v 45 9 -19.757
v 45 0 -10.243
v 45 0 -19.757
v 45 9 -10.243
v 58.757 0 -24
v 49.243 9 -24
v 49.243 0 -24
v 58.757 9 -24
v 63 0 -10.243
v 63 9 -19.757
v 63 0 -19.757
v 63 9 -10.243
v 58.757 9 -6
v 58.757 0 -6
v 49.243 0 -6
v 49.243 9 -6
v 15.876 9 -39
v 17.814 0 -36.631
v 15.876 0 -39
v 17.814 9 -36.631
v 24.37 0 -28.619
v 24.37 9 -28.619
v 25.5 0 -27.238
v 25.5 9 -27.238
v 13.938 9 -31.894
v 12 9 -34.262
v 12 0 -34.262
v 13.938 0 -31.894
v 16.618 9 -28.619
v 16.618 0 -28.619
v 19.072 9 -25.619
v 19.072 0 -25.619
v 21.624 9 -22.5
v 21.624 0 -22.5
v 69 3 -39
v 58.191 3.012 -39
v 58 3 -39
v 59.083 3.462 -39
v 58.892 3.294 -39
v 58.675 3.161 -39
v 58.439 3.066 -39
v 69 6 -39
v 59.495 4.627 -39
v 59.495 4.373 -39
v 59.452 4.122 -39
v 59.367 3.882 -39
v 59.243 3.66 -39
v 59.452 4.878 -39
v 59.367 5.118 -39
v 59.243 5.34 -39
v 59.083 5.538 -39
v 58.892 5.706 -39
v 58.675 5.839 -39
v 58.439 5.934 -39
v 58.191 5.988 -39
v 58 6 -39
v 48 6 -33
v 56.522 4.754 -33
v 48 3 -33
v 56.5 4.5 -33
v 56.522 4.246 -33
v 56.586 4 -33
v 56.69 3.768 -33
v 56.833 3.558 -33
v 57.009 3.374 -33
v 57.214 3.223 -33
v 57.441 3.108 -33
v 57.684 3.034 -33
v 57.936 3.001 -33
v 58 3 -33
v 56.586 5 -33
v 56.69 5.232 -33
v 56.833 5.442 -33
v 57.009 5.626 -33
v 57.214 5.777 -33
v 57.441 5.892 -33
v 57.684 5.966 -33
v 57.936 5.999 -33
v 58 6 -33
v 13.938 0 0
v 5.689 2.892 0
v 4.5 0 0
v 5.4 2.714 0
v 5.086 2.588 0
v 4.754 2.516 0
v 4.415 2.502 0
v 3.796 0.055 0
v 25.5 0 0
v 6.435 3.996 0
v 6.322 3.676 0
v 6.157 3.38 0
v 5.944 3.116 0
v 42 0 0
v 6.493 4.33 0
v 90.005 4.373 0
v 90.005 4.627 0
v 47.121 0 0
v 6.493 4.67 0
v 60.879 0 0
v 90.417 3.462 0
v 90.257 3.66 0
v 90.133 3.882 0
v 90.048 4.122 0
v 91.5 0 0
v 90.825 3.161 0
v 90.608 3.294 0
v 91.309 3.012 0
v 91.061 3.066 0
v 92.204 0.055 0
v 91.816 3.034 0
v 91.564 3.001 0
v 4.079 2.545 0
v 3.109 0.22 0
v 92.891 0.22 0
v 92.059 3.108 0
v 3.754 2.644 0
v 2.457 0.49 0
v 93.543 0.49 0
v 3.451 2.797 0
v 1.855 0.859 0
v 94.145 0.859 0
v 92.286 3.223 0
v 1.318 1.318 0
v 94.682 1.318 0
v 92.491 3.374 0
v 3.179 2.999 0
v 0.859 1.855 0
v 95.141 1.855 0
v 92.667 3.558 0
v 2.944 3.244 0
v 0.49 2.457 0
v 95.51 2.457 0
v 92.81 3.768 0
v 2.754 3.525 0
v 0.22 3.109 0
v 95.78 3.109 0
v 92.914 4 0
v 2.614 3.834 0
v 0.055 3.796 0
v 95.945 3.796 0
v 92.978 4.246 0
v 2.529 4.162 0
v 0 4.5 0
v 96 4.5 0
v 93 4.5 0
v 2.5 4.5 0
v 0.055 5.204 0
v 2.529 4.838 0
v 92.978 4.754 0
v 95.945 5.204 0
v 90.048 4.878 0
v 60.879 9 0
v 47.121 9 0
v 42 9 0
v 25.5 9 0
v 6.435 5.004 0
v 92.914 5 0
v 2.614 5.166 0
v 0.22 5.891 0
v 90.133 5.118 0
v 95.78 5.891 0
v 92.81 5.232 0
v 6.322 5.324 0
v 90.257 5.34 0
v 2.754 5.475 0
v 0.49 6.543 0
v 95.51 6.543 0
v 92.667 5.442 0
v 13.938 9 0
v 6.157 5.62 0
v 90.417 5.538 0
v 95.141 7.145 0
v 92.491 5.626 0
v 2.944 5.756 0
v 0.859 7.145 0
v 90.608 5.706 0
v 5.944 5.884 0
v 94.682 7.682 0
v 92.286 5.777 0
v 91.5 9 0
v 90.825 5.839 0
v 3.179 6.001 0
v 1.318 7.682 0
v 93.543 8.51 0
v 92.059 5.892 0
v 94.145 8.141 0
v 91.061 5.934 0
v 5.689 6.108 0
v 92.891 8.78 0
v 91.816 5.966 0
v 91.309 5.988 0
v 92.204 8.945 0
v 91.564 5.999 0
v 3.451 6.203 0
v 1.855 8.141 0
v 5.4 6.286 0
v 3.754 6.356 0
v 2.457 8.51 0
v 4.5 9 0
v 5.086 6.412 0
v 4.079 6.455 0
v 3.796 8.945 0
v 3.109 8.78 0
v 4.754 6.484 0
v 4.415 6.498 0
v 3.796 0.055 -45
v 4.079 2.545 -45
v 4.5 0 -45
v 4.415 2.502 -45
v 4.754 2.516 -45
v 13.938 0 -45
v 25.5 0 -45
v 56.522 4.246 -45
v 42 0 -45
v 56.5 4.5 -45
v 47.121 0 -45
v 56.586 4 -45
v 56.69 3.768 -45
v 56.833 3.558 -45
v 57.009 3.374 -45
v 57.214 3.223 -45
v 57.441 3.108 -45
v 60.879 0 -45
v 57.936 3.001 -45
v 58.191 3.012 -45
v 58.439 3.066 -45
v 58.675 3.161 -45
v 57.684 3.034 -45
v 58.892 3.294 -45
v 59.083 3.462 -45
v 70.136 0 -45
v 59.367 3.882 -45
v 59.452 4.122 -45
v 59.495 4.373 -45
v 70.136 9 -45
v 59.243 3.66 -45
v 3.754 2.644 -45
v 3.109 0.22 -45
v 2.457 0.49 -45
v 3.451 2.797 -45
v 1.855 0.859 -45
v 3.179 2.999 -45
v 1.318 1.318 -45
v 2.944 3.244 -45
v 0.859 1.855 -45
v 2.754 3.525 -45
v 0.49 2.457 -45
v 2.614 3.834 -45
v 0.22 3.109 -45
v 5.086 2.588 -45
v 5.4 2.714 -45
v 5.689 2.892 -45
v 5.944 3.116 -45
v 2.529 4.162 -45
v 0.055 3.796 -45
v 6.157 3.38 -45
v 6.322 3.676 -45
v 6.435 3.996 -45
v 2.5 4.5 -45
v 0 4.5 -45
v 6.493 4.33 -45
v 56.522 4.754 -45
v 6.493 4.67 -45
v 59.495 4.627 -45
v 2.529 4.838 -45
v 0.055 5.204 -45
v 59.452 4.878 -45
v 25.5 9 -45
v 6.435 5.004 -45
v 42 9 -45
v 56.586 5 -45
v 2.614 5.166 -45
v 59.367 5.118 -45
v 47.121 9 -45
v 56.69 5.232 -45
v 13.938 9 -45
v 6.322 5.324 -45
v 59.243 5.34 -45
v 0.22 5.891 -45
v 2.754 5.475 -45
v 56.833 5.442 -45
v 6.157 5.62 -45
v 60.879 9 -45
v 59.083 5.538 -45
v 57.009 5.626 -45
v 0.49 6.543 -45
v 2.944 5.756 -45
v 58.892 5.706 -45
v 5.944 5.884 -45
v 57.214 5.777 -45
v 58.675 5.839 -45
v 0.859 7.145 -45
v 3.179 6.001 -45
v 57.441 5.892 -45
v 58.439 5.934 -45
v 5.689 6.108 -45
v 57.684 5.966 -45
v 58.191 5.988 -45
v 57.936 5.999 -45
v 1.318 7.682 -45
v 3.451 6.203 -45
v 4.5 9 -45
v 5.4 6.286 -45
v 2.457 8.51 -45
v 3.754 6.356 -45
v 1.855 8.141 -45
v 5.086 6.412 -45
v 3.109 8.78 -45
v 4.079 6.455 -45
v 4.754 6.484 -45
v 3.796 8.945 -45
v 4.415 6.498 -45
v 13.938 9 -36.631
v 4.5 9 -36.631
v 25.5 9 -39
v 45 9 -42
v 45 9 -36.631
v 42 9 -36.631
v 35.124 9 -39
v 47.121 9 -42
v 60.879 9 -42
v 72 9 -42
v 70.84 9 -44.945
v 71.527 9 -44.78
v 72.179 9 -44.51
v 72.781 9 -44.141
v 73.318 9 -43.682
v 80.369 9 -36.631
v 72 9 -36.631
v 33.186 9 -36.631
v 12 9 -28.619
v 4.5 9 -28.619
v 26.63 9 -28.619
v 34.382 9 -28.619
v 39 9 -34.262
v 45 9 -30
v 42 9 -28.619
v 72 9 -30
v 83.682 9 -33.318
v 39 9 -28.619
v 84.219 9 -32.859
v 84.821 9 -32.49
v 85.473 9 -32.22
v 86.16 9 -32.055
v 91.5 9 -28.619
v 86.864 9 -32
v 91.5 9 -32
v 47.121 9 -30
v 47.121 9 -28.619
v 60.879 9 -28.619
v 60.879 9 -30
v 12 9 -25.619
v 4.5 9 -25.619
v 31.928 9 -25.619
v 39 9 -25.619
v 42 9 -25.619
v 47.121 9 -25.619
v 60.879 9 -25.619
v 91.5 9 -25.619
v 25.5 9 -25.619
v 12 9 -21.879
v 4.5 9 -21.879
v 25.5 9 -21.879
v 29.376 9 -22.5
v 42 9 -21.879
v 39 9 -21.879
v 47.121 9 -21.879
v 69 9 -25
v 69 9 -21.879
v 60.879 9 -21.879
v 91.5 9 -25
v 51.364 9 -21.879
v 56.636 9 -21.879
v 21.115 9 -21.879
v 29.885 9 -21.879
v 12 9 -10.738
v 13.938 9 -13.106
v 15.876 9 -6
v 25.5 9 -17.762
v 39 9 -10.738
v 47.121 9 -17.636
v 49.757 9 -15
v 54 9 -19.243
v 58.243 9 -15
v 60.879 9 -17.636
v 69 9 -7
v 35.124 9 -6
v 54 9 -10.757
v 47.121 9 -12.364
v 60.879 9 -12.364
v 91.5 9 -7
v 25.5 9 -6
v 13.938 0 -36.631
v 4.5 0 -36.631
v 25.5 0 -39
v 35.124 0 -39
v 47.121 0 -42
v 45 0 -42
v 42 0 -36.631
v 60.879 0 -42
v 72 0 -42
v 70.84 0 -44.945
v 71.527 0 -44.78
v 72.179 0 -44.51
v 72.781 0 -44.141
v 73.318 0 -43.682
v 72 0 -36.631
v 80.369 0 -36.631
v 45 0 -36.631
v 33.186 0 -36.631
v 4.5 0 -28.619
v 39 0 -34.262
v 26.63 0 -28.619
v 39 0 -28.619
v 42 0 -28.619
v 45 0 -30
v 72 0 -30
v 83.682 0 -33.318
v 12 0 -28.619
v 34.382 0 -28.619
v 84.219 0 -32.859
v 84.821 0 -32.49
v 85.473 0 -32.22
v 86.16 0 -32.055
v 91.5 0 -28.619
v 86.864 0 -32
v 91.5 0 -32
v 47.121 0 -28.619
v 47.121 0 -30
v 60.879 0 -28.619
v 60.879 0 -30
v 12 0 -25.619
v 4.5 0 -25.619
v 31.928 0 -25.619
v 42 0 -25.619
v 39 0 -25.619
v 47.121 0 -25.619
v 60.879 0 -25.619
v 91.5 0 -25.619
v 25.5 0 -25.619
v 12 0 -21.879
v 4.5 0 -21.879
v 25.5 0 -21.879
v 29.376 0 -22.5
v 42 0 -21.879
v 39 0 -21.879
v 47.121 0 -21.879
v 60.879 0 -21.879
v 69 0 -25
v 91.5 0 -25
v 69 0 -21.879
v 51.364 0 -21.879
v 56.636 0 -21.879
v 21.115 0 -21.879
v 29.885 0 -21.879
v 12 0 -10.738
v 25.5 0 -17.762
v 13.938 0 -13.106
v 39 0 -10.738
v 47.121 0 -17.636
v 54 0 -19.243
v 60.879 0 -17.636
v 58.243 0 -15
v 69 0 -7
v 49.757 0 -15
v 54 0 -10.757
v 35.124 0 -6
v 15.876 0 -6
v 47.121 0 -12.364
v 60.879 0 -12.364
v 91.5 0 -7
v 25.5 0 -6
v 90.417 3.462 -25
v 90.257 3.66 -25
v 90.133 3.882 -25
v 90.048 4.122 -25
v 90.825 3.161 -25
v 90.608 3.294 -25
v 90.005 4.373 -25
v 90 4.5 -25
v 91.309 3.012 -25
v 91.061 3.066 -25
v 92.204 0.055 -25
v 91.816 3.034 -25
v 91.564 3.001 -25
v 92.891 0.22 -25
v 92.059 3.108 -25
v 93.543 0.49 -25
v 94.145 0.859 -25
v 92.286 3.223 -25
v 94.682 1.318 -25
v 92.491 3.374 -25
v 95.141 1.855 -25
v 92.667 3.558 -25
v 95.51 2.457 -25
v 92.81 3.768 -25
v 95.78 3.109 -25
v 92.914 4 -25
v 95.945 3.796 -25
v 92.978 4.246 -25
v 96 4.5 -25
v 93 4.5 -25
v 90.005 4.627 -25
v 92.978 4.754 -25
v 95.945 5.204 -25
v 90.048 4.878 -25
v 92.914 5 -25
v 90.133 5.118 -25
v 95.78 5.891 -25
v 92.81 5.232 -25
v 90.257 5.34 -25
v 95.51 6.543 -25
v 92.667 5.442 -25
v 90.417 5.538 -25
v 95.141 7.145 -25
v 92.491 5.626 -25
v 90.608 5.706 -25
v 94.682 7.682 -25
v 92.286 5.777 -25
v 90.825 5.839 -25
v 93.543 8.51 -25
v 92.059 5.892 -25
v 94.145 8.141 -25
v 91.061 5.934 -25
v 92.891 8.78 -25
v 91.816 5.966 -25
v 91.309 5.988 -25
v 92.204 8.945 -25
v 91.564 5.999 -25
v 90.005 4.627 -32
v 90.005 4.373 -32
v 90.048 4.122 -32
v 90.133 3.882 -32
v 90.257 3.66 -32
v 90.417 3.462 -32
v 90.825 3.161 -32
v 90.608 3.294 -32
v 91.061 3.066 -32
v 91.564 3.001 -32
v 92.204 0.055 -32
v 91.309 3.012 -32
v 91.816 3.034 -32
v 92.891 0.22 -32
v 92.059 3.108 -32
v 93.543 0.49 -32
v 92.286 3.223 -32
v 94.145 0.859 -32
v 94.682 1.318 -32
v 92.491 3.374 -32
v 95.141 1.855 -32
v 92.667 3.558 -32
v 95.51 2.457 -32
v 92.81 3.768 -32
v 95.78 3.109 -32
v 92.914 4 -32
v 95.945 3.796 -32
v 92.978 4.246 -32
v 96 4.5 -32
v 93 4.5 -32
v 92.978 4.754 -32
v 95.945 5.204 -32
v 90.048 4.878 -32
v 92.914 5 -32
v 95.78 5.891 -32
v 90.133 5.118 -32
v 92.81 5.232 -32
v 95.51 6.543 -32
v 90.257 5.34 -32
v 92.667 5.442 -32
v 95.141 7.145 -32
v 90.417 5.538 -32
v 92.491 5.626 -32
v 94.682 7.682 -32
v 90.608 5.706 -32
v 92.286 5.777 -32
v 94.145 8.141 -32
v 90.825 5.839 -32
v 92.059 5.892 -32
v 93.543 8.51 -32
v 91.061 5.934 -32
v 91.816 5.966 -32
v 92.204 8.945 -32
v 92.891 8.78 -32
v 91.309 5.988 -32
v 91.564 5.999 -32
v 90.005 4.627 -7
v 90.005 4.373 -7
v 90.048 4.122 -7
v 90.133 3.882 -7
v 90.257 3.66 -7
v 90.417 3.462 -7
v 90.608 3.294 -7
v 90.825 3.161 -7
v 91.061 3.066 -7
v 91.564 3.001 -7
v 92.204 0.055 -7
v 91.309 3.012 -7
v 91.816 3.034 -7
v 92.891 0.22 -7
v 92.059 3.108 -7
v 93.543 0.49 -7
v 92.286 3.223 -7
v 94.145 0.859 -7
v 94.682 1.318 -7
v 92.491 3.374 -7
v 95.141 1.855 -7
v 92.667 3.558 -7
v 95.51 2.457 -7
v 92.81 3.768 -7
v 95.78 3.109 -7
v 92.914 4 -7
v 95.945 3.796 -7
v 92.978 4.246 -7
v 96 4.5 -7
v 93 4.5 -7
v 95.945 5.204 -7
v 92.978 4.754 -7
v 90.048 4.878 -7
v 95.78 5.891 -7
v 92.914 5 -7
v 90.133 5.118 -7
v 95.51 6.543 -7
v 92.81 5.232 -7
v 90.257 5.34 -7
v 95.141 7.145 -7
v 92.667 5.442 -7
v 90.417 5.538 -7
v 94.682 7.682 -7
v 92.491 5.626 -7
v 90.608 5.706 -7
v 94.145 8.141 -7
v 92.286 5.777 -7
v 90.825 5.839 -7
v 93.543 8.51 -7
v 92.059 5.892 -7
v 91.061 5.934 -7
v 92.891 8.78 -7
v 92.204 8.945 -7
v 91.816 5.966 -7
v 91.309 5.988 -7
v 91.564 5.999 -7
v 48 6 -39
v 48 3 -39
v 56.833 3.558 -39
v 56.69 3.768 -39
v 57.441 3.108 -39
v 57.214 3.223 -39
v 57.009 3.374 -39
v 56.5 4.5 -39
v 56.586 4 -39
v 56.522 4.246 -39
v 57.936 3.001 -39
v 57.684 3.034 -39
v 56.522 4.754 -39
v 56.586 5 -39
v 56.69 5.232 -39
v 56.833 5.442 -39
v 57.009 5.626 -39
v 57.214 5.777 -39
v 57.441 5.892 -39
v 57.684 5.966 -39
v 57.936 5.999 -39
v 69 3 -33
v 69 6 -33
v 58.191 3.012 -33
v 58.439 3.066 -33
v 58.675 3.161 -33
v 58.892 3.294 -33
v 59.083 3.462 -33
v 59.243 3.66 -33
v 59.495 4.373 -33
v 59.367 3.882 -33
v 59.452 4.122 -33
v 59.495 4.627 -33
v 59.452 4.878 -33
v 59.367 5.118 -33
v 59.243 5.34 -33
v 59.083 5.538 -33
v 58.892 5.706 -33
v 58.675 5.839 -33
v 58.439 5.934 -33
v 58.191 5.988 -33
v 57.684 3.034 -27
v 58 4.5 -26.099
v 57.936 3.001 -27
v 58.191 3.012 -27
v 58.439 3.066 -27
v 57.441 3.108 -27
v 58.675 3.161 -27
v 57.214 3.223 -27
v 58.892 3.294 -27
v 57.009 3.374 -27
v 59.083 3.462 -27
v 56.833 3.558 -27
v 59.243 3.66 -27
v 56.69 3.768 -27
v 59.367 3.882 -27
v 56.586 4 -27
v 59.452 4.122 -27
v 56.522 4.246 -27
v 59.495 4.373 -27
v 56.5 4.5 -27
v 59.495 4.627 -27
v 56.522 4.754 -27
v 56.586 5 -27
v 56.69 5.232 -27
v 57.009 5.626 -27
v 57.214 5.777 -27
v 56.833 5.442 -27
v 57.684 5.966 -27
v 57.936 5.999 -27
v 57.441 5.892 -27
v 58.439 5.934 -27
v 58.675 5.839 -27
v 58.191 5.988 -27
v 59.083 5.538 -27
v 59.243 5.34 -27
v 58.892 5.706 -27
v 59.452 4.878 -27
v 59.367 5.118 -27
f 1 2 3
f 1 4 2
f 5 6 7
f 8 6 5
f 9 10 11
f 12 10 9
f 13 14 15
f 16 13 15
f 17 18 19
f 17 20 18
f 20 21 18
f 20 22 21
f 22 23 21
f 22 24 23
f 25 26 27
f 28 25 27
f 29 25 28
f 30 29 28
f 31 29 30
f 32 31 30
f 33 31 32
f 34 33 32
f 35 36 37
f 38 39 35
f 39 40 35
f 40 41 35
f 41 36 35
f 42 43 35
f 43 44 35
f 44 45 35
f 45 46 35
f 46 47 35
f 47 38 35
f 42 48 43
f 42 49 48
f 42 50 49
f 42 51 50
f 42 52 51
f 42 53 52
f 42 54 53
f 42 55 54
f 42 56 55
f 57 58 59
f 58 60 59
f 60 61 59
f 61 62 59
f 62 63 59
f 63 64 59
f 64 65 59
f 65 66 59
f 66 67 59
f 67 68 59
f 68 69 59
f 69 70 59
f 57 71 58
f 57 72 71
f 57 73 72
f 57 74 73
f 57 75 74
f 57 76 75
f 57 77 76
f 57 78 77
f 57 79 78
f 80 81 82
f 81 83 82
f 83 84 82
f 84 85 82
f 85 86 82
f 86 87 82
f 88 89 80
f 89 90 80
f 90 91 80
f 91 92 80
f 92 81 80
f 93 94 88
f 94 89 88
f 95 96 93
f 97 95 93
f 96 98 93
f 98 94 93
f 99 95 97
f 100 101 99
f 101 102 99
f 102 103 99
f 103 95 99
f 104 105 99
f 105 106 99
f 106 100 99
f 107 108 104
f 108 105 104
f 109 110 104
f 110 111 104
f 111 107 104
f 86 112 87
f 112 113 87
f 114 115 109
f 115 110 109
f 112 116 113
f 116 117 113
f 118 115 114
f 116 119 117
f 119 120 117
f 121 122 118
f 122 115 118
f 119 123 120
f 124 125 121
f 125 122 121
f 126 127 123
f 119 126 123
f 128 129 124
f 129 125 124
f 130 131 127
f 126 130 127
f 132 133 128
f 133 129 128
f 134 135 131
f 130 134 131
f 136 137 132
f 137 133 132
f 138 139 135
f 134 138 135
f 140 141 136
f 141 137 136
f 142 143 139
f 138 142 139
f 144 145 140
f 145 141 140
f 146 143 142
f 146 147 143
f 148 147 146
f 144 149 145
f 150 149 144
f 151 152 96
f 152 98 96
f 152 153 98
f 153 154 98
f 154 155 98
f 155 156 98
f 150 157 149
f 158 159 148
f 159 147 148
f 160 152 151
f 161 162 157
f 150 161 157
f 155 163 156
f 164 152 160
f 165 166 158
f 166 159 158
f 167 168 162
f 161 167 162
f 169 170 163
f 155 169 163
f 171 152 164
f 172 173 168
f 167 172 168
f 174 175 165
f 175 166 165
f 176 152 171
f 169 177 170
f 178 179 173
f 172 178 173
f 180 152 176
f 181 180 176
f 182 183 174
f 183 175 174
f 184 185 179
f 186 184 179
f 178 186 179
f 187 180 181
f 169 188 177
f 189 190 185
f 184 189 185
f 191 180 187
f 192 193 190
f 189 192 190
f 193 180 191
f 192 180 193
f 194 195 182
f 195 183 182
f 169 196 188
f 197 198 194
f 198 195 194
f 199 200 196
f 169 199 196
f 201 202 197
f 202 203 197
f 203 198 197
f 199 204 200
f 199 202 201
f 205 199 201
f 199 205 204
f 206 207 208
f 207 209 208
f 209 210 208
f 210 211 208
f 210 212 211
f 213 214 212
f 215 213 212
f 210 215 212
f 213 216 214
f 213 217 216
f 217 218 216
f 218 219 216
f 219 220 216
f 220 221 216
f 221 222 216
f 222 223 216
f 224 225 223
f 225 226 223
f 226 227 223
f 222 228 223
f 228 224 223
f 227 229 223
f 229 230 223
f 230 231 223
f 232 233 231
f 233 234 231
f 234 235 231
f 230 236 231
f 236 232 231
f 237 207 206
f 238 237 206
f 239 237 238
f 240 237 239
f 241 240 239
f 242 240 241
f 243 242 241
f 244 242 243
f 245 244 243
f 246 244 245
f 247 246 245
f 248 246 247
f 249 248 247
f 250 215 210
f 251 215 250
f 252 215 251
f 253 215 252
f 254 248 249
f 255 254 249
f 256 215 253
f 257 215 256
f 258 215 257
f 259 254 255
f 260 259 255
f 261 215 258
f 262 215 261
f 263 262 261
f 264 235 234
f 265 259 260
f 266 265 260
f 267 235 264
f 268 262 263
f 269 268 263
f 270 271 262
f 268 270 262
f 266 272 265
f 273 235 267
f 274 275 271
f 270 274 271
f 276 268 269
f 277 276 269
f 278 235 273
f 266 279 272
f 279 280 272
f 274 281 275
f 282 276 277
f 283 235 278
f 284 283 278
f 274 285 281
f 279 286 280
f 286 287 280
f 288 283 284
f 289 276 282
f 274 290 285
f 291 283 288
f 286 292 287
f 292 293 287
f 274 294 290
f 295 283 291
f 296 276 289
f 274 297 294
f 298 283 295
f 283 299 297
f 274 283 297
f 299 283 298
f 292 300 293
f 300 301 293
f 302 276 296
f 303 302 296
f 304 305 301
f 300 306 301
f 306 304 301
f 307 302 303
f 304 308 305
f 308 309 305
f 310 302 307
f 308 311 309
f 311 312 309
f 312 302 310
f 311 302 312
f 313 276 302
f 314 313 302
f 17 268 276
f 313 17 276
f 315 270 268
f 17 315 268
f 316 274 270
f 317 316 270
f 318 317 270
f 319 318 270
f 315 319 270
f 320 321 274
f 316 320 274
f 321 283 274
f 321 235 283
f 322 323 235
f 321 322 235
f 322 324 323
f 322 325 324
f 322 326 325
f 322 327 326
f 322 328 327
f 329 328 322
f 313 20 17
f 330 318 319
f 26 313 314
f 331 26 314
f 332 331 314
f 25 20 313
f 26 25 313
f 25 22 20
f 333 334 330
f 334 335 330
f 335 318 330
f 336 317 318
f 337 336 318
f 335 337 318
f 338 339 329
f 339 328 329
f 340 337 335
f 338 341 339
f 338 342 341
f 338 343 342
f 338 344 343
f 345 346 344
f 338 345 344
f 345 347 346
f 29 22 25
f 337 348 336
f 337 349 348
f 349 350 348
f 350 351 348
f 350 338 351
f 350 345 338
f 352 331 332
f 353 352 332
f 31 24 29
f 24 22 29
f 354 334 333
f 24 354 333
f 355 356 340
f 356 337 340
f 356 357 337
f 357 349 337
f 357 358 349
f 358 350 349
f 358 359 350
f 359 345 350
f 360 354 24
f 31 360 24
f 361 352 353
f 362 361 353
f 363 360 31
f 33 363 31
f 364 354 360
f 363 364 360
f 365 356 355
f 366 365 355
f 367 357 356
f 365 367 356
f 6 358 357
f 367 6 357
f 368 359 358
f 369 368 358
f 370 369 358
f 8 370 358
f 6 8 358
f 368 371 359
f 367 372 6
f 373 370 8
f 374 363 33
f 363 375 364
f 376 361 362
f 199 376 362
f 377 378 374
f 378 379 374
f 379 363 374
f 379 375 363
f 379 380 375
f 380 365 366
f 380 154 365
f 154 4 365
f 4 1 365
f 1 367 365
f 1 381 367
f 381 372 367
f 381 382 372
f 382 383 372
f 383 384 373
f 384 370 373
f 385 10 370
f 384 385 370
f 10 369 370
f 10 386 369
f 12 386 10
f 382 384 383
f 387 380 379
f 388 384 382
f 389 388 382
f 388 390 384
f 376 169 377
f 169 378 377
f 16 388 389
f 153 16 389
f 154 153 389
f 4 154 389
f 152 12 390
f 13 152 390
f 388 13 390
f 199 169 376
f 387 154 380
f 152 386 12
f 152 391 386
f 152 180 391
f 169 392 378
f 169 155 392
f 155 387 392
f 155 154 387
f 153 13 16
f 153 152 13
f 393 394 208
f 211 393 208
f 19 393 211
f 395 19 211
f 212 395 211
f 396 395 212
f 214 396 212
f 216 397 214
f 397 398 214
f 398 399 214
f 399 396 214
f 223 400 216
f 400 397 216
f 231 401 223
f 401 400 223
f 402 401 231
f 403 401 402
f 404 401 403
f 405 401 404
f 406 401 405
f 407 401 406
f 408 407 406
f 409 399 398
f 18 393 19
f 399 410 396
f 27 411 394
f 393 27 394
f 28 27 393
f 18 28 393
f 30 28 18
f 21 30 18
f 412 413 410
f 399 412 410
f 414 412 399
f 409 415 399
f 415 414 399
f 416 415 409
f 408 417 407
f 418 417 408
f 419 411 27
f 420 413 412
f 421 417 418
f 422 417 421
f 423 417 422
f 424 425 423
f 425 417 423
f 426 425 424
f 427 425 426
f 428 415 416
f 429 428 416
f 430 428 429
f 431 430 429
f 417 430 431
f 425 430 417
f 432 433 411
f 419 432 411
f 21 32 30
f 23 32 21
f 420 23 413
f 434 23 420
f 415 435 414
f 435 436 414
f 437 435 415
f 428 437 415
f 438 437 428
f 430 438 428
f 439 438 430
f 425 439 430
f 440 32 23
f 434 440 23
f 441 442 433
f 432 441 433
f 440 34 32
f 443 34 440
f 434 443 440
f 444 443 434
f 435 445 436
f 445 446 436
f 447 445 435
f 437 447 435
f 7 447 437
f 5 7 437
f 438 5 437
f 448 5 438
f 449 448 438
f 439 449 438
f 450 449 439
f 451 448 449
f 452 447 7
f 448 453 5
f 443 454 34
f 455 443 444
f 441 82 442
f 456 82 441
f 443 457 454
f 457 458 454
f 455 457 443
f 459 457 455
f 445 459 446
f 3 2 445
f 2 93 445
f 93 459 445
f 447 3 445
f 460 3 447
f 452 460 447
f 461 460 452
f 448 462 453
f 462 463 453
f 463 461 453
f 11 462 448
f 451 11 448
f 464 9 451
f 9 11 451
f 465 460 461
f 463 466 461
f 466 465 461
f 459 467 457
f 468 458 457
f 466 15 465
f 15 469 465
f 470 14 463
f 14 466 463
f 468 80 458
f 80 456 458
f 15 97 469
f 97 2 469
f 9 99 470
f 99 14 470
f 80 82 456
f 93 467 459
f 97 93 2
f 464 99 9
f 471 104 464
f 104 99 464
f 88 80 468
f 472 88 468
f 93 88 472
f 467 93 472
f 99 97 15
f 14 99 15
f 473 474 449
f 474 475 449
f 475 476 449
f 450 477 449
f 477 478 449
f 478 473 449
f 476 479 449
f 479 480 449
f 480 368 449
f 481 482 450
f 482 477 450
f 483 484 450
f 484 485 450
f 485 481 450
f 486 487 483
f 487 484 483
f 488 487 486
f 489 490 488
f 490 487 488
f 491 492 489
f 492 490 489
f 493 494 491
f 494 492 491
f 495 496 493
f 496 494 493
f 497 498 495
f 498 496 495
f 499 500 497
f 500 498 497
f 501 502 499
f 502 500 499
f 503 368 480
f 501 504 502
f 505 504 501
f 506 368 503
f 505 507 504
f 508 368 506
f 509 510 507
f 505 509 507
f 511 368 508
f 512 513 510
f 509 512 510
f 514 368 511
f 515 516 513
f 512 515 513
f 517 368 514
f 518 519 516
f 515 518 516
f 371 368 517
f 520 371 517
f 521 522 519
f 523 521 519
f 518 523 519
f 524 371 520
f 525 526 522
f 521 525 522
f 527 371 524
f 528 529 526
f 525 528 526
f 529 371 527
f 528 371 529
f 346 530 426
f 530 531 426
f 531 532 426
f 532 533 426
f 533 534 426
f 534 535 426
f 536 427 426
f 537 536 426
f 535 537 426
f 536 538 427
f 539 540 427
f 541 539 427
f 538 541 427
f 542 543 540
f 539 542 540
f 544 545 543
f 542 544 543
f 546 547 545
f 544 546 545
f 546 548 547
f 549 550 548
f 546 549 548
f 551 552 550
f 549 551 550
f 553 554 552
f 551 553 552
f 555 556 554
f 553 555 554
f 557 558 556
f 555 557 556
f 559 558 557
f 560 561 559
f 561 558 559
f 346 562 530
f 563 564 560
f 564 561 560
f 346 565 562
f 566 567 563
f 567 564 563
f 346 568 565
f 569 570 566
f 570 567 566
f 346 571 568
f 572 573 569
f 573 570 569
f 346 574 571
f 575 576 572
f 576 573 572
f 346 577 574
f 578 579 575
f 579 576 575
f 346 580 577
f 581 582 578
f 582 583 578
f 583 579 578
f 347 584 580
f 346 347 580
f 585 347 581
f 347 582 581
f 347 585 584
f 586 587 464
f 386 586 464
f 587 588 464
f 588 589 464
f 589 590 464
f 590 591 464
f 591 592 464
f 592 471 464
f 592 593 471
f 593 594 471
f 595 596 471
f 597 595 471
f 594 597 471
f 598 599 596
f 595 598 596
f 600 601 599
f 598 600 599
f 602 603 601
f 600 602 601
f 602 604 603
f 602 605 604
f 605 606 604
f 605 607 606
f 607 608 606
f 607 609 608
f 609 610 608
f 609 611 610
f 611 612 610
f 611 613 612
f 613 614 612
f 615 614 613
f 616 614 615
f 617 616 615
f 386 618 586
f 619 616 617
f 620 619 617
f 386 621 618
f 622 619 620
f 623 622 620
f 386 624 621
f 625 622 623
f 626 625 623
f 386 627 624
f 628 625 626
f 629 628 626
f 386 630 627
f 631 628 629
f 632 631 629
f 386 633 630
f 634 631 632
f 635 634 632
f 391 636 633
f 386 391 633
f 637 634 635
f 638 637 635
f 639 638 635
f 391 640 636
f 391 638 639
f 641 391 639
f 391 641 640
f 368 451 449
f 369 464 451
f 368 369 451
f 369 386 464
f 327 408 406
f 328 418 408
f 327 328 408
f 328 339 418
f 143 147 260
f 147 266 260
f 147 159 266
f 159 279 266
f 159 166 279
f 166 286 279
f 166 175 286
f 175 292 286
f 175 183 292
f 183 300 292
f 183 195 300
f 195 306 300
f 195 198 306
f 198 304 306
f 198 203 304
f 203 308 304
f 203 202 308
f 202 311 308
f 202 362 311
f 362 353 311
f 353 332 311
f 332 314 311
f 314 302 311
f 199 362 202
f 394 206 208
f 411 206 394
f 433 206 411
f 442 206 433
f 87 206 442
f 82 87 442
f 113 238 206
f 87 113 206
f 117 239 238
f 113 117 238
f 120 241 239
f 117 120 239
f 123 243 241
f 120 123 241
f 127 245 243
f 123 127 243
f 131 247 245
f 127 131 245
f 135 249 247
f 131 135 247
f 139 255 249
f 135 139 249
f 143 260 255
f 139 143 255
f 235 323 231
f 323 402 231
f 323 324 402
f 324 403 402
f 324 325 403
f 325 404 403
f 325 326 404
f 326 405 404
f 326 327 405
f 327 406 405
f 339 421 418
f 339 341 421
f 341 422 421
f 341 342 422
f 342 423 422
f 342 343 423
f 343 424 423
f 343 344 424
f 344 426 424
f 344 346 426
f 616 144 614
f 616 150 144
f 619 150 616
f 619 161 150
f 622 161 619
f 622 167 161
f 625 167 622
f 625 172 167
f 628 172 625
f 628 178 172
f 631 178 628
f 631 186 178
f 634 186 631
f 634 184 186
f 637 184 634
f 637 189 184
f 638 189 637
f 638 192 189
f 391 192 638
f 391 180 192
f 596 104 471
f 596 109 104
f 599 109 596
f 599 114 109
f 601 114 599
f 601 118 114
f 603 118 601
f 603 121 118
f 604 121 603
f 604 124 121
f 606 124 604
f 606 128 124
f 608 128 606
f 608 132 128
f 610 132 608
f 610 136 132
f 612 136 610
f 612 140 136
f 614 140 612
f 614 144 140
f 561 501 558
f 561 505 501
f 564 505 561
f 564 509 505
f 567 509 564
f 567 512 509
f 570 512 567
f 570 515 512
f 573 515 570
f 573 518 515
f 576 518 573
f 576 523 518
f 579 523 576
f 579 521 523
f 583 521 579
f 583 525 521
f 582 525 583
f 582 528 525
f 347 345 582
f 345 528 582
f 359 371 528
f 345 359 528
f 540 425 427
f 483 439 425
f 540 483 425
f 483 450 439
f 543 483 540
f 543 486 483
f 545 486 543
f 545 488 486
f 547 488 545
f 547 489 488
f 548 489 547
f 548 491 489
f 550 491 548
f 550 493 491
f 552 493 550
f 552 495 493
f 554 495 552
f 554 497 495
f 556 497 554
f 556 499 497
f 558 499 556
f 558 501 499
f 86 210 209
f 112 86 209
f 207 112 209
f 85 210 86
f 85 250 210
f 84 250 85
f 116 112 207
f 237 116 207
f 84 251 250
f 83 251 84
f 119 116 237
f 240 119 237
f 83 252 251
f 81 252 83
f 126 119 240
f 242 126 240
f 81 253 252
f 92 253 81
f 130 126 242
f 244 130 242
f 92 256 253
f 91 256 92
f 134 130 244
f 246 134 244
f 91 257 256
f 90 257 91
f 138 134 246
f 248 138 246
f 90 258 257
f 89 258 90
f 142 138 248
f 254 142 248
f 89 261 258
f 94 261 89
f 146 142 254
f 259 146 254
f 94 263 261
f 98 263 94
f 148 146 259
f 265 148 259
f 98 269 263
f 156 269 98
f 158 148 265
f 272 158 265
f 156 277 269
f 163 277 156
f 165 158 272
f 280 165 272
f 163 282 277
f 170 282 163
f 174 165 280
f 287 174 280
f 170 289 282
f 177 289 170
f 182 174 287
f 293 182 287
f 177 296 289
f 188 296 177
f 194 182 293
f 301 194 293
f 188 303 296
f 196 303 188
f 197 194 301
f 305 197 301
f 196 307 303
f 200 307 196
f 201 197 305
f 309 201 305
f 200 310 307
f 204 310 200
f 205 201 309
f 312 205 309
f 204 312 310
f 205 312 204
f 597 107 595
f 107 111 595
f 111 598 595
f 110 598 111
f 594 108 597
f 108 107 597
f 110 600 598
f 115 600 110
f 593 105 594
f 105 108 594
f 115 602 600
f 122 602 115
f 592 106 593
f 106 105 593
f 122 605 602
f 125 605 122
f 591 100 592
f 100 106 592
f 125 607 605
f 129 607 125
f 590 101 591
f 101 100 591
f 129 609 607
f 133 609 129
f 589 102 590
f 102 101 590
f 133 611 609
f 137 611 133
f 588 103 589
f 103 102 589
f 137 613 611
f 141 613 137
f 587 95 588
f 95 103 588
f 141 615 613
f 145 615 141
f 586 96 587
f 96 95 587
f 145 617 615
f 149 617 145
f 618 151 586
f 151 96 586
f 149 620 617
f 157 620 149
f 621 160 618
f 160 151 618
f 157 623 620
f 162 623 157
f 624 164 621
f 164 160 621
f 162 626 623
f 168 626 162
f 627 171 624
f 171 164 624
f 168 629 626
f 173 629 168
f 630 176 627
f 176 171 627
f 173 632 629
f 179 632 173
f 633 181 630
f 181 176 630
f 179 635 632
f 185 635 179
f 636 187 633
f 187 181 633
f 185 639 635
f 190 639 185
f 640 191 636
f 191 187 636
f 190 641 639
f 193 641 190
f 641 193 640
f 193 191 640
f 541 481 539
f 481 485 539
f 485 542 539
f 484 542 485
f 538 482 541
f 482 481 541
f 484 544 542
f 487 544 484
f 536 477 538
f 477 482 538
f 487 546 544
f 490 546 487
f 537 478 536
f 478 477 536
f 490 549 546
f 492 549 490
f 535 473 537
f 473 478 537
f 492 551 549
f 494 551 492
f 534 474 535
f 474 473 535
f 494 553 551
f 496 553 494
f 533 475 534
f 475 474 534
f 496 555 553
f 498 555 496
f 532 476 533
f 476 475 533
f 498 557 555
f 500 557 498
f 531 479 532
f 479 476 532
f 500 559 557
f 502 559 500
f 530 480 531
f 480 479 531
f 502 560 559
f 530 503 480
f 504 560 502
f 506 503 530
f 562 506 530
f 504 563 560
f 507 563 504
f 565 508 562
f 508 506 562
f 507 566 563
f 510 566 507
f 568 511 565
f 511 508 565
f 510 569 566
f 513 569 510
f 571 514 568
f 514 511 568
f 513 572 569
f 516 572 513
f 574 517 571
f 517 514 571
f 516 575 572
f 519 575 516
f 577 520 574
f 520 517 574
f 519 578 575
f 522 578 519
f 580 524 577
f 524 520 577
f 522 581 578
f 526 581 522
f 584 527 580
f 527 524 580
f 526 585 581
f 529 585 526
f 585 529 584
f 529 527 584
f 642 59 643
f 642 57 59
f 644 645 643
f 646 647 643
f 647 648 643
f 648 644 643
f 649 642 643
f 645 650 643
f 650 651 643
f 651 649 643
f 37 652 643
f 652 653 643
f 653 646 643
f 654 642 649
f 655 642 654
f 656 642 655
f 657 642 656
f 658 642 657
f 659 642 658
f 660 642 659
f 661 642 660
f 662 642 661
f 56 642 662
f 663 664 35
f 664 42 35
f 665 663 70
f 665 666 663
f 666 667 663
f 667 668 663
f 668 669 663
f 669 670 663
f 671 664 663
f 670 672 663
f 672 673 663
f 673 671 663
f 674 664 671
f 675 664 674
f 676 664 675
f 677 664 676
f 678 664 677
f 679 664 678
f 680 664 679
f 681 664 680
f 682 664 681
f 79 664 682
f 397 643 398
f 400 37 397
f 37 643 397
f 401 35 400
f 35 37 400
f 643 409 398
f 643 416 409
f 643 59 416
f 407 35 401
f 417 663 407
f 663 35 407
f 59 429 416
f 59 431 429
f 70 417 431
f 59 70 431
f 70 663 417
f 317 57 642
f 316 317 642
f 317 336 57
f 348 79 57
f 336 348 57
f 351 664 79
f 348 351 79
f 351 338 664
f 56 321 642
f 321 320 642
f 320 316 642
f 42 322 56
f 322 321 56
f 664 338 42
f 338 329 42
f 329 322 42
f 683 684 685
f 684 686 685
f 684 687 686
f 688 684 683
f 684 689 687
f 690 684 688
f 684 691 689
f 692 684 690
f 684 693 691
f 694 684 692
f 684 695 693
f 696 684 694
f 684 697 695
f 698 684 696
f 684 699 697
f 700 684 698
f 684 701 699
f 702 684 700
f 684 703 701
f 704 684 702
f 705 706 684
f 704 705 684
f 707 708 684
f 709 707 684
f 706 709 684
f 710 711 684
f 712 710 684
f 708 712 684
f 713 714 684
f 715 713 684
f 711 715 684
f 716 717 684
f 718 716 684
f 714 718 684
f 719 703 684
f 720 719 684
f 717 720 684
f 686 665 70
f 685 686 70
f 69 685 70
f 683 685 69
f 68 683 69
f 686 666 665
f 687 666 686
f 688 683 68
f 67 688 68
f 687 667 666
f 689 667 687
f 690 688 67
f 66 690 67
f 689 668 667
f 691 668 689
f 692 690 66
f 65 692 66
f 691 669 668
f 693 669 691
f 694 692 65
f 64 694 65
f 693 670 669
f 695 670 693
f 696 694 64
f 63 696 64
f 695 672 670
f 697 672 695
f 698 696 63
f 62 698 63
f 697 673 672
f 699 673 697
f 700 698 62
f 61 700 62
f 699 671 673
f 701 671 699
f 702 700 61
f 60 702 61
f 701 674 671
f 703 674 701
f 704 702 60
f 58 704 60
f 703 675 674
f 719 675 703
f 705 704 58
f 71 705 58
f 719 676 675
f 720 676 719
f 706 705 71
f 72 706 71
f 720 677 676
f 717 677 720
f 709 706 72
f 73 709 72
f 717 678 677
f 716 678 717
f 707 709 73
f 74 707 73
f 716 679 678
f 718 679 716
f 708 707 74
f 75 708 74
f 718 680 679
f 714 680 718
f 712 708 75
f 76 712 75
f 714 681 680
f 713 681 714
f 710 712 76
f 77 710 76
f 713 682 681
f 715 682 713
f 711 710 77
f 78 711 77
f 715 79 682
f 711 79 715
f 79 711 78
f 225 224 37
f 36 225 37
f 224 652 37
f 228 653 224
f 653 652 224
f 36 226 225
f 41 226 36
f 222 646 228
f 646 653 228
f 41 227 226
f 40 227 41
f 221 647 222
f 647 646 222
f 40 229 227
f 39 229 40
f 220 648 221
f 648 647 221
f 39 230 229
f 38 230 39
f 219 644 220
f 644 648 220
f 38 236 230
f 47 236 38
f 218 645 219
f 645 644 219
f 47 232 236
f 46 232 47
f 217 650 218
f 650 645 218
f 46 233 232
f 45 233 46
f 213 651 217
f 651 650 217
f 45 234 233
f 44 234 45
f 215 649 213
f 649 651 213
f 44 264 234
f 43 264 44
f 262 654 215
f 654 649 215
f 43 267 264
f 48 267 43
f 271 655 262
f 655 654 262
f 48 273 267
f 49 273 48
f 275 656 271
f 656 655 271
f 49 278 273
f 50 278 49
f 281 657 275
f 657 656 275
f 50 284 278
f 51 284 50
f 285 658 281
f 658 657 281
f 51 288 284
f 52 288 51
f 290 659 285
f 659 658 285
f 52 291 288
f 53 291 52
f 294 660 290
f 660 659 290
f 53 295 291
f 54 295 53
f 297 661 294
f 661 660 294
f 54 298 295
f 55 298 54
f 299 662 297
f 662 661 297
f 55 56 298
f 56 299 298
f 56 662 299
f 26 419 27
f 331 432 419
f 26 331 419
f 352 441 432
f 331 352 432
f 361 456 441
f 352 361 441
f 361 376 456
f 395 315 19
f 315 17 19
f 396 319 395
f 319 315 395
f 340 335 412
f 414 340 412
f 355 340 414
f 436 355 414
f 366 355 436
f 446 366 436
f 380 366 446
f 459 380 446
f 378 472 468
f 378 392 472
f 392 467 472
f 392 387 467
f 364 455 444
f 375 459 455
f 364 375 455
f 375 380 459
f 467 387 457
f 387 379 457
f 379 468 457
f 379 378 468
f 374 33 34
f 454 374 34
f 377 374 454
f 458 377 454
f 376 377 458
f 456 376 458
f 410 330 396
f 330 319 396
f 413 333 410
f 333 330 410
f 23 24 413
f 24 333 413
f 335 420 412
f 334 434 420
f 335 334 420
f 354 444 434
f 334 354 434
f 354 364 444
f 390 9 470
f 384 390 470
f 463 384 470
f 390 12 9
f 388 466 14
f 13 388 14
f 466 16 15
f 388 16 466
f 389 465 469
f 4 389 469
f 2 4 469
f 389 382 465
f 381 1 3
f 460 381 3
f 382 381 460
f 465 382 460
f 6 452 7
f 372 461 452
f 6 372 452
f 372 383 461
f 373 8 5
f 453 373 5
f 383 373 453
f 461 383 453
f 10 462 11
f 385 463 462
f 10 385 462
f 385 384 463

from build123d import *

# Parameters (mm, degrees)
SKETCH1_W                 = 72
SKETCH1_H                 = 45
BOSS_EXTRUDE1_DEPTH       = 9
SKETCH3_W                 = 27
SKETCH3_H                 = 7
BOSS_EXTRUDE3_DEPTH       = 9
SKETCH4_W                 = 27
SKETCH4_H                 = 7
BOSS_EXTRUDE4_DEPTH       = 9
SKETCH5_W                 = 3
SKETCH5_H                 = 18
CUT_EXTRUDE1_DEPTH        = 9
BOSS_EXTRUDE5_DEPTH       = 9
FILLET1_R                 = 4.5
F_4_0MM_DOWEL_HOLE1_D     = 4
F_3_0MM_DOWEL_HOLE1_D     = 3
SKETCH12_W                = 21
SKETCH12_H                = 6
CUT_EXTRUDE3_DEPTH        = 9
CHAMFER1_SIZE             = 3
F_3_0MM_DOWEL_HOLE2_D     = 3
F_3_0MM_DOWEL_HOLE2_DEPTH = 18
F_3_0MM_DOWEL_HOLE2_TIP   = 0.901290929
SKETCH16_W                = 27
SKETCH16_H                = 33
SKETCH16_W_2              = 18
SKETCH16_H_2              = 18
CUT_EXTRUDE4_DEPTH        = 9
BOSS_EXTRUDE7_DEPTH       = 9
BOSS_EXTRUDE8_DEPTH       = 9
BOSS_EXTRUDE10_DEPTH      = 9


with BuildPart() as part:
    # Sketch1 → Boss-Extrude1 (new body)
    with BuildSketch(Plane(origin=(0, 0, 0), x_dir=(1, 0, 0), z_dir=(0, 1, 0))):
        with Locations((36, 22.5)):
            Rectangle(SKETCH1_W, SKETCH1_H)
    extrude(amount=BOSS_EXTRUDE1_DEPTH)

    # Sketch3 → Boss-Extrude3 (add)
    with BuildSketch(Plane(origin=(0, 0, 0), x_dir=(1, 0, 0), z_dir=(0, 1, 0))):
        with Locations((82.5, 28.5)):
            Rectangle(SKETCH3_W, SKETCH3_H)
    extrude(amount=BOSS_EXTRUDE3_DEPTH)

    # Sketch4 → Boss-Extrude4 (add)
    with BuildSketch(Plane(origin=(0, 0, 0), x_dir=(1, 0, 0), z_dir=(0, 1, 0))):
        with Locations((82.5, 3.5)):
            Rectangle(SKETCH4_W, SKETCH4_H)
    extrude(amount=BOSS_EXTRUDE4_DEPTH)

    # Sketch5 → Cut-Extrude1 (cut)
    with BuildSketch(Plane(origin=(0, 9, 0), x_dir=(1, 0, 0), z_dir=(0, 1, 0))):
        with Locations((70.5, 16)):
            Rectangle(SKETCH5_W, SKETCH5_H)
    extrude(amount=-CUT_EXTRUDE1_DEPTH, mode=Mode.SUBTRACT)

    # Sketch6 → Boss-Extrude5 (add)
    with BuildSketch(Plane(origin=(0, 9, 0), x_dir=(1, 0, 0), z_dir=(0, 1, 0))):
        Polygon((72, 45), (72, 32), (85, 32), align=None)
    extrude(amount=-BOSS_EXTRUDE5_DEPTH)

    # Fillet1
    fillet1_edges = [part.edges().sort_by_distance(p)[0] for p in [
        (0, 0, -22.5),
        (0, 9, -22.5),
        (72, 4.5, -45),
        (85, 4.5, -32),
        (96, 0, -3.5),
        (96, 9, -3.5),
        (96, 0, -28.5),
        (96, 9, -28.5),
    ]]
    fillet(fillet1_edges, radius=FILLET1_R - 0.0001)  # a hair under: the kernel refuses the full size

    # Ø4.0mm Dowel Hole1 (through all)
    with Locations(Plane(origin=(0, 0, -45), x_dir=(-1, 0, 0), z_dir=(0, 0, -1))):
        with Locations((-4.5, 4.5)):
            Hole(F_4_0MM_DOWEL_HOLE1_D / 2)

    # Ø3.0mm Dowel Hole1 (through all)
    with Locations(Plane.XY):
        with Locations((91.5, 4.5)):
            Hole(F_3_0MM_DOWEL_HOLE1_D / 2)

    # Sketch12 → Cut-Extrude3 (cut)
    with BuildSketch(Plane(origin=(0, 9, 0), x_dir=(1, 0, 0), z_dir=(0, 1, 0))):
        with Locations((58.5, 36)):
            Rectangle(SKETCH12_W, SKETCH12_H)
    extrude(amount=-CUT_EXTRUDE3_DEPTH, mode=Mode.SUBTRACT)

    # Chamfer1
    chamfer1_edges = [part.edges().sort_by_distance(p)[0] for p in [
        (48, 0, -36),
        (58.5, 0, -39),
        (69, 0, -36),
        (58.5, 0, -33),
        (48, 9, -36),
        (58.5, 9, -33),
        (69, 9, -36),
        (58.5, 9, -39),
    ]]
    chamfer(chamfer1_edges, length=CHAMFER1_SIZE)

    # Ø3.0mm Dowel Hole2
    with Locations(Plane(origin=(0, 0, -45), x_dir=(-1, 0, 0), z_dir=(0, 0, -1))):
        with Locations((-58, 4.5)):
            Hole(F_3_0MM_DOWEL_HOLE2_D / 2, depth=F_3_0MM_DOWEL_HOLE2_DEPTH)
            with Locations((0, 0, -(F_3_0MM_DOWEL_HOLE2_DEPTH + F_3_0MM_DOWEL_HOLE2_TIP / 2))):  # 118° drill point
                Cone(0, F_3_0MM_DOWEL_HOLE2_D / 2, F_3_0MM_DOWEL_HOLE2_TIP, mode=Mode.SUBTRACT)

    # Sketch16 → Cut-Extrude4 (cut)
    with BuildSketch(Plane(origin=(0, 9, 0), x_dir=(1, 0, 0), z_dir=(0, 1, 0))):
        with Locations((25.5, 22.5)):
            Rectangle(SKETCH16_W, SKETCH16_H)
        with Locations((54, 15)):
            Rectangle(SKETCH16_W_2, SKETCH16_H_2)
    extrude(amount=-CUT_EXTRUDE4_DEPTH, mode=Mode.SUBTRACT)

    # Sketch17 → Boss-Extrude7 (add)
    with BuildSketch(Plane(origin=(0, 9, 0), x_dir=(1, 0, 0), z_dir=(0, 1, 0))):
        Polygon((39, 6), (41.321871898, 7.899713371), (14.321871898, 40.899713371), (12, 39), (9.678128102, 37.100286629), (36.678128102, 4.100286629), align=None)
    extrude(amount=-BOSS_EXTRUDE7_DEPTH)

    # Sketch18 → Boss-Extrude8 (add)
    with BuildSketch(Plane(origin=(0, 9, 0), x_dir=(1, 0, 0), z_dir=(0, 1, 0))):
        Polygon((12, 6), (14.321871898, 4.100286629), (41.321871898, 37.100286629), (39, 39), (36.678128102, 40.899713371), (9.678128102, 7.899713371), align=None)
    extrude(amount=-BOSS_EXTRUDE8_DEPTH)

    # Sketch19 → Boss-Extrude10 (add)
    with BuildSketch(Plane(origin=(0, 9, 0), x_dir=(1, 0, 0), z_dir=(0, 1, 0))):
        Polygon((58.242640687, 15), (54, 10.757359313), (58.757359313, 6), (63, 6), (63, 10.242640687), align=None)
        Polygon((45, 19.757359313), (49.757359313, 15), (54, 19.242640687), (49.242640687, 24), (45, 24), align=None)
        Polygon((54, 19.242640687), (58.242640687, 15), (63, 19.757359313), (63, 24), (58.757359313, 24), align=None)
        Polygon((45, 10.242640687), (45, 6), (49.242640687, 6), (54, 10.757359313), (49.757359313, 15), align=None)
        Polygon((49.757359313, 15), (54, 10.757359313), (58.242640687, 15), (54, 19.242640687), align=None)
    extrude(amount=-BOSS_EXTRUDE10_DEPTH)


solid = part.part
